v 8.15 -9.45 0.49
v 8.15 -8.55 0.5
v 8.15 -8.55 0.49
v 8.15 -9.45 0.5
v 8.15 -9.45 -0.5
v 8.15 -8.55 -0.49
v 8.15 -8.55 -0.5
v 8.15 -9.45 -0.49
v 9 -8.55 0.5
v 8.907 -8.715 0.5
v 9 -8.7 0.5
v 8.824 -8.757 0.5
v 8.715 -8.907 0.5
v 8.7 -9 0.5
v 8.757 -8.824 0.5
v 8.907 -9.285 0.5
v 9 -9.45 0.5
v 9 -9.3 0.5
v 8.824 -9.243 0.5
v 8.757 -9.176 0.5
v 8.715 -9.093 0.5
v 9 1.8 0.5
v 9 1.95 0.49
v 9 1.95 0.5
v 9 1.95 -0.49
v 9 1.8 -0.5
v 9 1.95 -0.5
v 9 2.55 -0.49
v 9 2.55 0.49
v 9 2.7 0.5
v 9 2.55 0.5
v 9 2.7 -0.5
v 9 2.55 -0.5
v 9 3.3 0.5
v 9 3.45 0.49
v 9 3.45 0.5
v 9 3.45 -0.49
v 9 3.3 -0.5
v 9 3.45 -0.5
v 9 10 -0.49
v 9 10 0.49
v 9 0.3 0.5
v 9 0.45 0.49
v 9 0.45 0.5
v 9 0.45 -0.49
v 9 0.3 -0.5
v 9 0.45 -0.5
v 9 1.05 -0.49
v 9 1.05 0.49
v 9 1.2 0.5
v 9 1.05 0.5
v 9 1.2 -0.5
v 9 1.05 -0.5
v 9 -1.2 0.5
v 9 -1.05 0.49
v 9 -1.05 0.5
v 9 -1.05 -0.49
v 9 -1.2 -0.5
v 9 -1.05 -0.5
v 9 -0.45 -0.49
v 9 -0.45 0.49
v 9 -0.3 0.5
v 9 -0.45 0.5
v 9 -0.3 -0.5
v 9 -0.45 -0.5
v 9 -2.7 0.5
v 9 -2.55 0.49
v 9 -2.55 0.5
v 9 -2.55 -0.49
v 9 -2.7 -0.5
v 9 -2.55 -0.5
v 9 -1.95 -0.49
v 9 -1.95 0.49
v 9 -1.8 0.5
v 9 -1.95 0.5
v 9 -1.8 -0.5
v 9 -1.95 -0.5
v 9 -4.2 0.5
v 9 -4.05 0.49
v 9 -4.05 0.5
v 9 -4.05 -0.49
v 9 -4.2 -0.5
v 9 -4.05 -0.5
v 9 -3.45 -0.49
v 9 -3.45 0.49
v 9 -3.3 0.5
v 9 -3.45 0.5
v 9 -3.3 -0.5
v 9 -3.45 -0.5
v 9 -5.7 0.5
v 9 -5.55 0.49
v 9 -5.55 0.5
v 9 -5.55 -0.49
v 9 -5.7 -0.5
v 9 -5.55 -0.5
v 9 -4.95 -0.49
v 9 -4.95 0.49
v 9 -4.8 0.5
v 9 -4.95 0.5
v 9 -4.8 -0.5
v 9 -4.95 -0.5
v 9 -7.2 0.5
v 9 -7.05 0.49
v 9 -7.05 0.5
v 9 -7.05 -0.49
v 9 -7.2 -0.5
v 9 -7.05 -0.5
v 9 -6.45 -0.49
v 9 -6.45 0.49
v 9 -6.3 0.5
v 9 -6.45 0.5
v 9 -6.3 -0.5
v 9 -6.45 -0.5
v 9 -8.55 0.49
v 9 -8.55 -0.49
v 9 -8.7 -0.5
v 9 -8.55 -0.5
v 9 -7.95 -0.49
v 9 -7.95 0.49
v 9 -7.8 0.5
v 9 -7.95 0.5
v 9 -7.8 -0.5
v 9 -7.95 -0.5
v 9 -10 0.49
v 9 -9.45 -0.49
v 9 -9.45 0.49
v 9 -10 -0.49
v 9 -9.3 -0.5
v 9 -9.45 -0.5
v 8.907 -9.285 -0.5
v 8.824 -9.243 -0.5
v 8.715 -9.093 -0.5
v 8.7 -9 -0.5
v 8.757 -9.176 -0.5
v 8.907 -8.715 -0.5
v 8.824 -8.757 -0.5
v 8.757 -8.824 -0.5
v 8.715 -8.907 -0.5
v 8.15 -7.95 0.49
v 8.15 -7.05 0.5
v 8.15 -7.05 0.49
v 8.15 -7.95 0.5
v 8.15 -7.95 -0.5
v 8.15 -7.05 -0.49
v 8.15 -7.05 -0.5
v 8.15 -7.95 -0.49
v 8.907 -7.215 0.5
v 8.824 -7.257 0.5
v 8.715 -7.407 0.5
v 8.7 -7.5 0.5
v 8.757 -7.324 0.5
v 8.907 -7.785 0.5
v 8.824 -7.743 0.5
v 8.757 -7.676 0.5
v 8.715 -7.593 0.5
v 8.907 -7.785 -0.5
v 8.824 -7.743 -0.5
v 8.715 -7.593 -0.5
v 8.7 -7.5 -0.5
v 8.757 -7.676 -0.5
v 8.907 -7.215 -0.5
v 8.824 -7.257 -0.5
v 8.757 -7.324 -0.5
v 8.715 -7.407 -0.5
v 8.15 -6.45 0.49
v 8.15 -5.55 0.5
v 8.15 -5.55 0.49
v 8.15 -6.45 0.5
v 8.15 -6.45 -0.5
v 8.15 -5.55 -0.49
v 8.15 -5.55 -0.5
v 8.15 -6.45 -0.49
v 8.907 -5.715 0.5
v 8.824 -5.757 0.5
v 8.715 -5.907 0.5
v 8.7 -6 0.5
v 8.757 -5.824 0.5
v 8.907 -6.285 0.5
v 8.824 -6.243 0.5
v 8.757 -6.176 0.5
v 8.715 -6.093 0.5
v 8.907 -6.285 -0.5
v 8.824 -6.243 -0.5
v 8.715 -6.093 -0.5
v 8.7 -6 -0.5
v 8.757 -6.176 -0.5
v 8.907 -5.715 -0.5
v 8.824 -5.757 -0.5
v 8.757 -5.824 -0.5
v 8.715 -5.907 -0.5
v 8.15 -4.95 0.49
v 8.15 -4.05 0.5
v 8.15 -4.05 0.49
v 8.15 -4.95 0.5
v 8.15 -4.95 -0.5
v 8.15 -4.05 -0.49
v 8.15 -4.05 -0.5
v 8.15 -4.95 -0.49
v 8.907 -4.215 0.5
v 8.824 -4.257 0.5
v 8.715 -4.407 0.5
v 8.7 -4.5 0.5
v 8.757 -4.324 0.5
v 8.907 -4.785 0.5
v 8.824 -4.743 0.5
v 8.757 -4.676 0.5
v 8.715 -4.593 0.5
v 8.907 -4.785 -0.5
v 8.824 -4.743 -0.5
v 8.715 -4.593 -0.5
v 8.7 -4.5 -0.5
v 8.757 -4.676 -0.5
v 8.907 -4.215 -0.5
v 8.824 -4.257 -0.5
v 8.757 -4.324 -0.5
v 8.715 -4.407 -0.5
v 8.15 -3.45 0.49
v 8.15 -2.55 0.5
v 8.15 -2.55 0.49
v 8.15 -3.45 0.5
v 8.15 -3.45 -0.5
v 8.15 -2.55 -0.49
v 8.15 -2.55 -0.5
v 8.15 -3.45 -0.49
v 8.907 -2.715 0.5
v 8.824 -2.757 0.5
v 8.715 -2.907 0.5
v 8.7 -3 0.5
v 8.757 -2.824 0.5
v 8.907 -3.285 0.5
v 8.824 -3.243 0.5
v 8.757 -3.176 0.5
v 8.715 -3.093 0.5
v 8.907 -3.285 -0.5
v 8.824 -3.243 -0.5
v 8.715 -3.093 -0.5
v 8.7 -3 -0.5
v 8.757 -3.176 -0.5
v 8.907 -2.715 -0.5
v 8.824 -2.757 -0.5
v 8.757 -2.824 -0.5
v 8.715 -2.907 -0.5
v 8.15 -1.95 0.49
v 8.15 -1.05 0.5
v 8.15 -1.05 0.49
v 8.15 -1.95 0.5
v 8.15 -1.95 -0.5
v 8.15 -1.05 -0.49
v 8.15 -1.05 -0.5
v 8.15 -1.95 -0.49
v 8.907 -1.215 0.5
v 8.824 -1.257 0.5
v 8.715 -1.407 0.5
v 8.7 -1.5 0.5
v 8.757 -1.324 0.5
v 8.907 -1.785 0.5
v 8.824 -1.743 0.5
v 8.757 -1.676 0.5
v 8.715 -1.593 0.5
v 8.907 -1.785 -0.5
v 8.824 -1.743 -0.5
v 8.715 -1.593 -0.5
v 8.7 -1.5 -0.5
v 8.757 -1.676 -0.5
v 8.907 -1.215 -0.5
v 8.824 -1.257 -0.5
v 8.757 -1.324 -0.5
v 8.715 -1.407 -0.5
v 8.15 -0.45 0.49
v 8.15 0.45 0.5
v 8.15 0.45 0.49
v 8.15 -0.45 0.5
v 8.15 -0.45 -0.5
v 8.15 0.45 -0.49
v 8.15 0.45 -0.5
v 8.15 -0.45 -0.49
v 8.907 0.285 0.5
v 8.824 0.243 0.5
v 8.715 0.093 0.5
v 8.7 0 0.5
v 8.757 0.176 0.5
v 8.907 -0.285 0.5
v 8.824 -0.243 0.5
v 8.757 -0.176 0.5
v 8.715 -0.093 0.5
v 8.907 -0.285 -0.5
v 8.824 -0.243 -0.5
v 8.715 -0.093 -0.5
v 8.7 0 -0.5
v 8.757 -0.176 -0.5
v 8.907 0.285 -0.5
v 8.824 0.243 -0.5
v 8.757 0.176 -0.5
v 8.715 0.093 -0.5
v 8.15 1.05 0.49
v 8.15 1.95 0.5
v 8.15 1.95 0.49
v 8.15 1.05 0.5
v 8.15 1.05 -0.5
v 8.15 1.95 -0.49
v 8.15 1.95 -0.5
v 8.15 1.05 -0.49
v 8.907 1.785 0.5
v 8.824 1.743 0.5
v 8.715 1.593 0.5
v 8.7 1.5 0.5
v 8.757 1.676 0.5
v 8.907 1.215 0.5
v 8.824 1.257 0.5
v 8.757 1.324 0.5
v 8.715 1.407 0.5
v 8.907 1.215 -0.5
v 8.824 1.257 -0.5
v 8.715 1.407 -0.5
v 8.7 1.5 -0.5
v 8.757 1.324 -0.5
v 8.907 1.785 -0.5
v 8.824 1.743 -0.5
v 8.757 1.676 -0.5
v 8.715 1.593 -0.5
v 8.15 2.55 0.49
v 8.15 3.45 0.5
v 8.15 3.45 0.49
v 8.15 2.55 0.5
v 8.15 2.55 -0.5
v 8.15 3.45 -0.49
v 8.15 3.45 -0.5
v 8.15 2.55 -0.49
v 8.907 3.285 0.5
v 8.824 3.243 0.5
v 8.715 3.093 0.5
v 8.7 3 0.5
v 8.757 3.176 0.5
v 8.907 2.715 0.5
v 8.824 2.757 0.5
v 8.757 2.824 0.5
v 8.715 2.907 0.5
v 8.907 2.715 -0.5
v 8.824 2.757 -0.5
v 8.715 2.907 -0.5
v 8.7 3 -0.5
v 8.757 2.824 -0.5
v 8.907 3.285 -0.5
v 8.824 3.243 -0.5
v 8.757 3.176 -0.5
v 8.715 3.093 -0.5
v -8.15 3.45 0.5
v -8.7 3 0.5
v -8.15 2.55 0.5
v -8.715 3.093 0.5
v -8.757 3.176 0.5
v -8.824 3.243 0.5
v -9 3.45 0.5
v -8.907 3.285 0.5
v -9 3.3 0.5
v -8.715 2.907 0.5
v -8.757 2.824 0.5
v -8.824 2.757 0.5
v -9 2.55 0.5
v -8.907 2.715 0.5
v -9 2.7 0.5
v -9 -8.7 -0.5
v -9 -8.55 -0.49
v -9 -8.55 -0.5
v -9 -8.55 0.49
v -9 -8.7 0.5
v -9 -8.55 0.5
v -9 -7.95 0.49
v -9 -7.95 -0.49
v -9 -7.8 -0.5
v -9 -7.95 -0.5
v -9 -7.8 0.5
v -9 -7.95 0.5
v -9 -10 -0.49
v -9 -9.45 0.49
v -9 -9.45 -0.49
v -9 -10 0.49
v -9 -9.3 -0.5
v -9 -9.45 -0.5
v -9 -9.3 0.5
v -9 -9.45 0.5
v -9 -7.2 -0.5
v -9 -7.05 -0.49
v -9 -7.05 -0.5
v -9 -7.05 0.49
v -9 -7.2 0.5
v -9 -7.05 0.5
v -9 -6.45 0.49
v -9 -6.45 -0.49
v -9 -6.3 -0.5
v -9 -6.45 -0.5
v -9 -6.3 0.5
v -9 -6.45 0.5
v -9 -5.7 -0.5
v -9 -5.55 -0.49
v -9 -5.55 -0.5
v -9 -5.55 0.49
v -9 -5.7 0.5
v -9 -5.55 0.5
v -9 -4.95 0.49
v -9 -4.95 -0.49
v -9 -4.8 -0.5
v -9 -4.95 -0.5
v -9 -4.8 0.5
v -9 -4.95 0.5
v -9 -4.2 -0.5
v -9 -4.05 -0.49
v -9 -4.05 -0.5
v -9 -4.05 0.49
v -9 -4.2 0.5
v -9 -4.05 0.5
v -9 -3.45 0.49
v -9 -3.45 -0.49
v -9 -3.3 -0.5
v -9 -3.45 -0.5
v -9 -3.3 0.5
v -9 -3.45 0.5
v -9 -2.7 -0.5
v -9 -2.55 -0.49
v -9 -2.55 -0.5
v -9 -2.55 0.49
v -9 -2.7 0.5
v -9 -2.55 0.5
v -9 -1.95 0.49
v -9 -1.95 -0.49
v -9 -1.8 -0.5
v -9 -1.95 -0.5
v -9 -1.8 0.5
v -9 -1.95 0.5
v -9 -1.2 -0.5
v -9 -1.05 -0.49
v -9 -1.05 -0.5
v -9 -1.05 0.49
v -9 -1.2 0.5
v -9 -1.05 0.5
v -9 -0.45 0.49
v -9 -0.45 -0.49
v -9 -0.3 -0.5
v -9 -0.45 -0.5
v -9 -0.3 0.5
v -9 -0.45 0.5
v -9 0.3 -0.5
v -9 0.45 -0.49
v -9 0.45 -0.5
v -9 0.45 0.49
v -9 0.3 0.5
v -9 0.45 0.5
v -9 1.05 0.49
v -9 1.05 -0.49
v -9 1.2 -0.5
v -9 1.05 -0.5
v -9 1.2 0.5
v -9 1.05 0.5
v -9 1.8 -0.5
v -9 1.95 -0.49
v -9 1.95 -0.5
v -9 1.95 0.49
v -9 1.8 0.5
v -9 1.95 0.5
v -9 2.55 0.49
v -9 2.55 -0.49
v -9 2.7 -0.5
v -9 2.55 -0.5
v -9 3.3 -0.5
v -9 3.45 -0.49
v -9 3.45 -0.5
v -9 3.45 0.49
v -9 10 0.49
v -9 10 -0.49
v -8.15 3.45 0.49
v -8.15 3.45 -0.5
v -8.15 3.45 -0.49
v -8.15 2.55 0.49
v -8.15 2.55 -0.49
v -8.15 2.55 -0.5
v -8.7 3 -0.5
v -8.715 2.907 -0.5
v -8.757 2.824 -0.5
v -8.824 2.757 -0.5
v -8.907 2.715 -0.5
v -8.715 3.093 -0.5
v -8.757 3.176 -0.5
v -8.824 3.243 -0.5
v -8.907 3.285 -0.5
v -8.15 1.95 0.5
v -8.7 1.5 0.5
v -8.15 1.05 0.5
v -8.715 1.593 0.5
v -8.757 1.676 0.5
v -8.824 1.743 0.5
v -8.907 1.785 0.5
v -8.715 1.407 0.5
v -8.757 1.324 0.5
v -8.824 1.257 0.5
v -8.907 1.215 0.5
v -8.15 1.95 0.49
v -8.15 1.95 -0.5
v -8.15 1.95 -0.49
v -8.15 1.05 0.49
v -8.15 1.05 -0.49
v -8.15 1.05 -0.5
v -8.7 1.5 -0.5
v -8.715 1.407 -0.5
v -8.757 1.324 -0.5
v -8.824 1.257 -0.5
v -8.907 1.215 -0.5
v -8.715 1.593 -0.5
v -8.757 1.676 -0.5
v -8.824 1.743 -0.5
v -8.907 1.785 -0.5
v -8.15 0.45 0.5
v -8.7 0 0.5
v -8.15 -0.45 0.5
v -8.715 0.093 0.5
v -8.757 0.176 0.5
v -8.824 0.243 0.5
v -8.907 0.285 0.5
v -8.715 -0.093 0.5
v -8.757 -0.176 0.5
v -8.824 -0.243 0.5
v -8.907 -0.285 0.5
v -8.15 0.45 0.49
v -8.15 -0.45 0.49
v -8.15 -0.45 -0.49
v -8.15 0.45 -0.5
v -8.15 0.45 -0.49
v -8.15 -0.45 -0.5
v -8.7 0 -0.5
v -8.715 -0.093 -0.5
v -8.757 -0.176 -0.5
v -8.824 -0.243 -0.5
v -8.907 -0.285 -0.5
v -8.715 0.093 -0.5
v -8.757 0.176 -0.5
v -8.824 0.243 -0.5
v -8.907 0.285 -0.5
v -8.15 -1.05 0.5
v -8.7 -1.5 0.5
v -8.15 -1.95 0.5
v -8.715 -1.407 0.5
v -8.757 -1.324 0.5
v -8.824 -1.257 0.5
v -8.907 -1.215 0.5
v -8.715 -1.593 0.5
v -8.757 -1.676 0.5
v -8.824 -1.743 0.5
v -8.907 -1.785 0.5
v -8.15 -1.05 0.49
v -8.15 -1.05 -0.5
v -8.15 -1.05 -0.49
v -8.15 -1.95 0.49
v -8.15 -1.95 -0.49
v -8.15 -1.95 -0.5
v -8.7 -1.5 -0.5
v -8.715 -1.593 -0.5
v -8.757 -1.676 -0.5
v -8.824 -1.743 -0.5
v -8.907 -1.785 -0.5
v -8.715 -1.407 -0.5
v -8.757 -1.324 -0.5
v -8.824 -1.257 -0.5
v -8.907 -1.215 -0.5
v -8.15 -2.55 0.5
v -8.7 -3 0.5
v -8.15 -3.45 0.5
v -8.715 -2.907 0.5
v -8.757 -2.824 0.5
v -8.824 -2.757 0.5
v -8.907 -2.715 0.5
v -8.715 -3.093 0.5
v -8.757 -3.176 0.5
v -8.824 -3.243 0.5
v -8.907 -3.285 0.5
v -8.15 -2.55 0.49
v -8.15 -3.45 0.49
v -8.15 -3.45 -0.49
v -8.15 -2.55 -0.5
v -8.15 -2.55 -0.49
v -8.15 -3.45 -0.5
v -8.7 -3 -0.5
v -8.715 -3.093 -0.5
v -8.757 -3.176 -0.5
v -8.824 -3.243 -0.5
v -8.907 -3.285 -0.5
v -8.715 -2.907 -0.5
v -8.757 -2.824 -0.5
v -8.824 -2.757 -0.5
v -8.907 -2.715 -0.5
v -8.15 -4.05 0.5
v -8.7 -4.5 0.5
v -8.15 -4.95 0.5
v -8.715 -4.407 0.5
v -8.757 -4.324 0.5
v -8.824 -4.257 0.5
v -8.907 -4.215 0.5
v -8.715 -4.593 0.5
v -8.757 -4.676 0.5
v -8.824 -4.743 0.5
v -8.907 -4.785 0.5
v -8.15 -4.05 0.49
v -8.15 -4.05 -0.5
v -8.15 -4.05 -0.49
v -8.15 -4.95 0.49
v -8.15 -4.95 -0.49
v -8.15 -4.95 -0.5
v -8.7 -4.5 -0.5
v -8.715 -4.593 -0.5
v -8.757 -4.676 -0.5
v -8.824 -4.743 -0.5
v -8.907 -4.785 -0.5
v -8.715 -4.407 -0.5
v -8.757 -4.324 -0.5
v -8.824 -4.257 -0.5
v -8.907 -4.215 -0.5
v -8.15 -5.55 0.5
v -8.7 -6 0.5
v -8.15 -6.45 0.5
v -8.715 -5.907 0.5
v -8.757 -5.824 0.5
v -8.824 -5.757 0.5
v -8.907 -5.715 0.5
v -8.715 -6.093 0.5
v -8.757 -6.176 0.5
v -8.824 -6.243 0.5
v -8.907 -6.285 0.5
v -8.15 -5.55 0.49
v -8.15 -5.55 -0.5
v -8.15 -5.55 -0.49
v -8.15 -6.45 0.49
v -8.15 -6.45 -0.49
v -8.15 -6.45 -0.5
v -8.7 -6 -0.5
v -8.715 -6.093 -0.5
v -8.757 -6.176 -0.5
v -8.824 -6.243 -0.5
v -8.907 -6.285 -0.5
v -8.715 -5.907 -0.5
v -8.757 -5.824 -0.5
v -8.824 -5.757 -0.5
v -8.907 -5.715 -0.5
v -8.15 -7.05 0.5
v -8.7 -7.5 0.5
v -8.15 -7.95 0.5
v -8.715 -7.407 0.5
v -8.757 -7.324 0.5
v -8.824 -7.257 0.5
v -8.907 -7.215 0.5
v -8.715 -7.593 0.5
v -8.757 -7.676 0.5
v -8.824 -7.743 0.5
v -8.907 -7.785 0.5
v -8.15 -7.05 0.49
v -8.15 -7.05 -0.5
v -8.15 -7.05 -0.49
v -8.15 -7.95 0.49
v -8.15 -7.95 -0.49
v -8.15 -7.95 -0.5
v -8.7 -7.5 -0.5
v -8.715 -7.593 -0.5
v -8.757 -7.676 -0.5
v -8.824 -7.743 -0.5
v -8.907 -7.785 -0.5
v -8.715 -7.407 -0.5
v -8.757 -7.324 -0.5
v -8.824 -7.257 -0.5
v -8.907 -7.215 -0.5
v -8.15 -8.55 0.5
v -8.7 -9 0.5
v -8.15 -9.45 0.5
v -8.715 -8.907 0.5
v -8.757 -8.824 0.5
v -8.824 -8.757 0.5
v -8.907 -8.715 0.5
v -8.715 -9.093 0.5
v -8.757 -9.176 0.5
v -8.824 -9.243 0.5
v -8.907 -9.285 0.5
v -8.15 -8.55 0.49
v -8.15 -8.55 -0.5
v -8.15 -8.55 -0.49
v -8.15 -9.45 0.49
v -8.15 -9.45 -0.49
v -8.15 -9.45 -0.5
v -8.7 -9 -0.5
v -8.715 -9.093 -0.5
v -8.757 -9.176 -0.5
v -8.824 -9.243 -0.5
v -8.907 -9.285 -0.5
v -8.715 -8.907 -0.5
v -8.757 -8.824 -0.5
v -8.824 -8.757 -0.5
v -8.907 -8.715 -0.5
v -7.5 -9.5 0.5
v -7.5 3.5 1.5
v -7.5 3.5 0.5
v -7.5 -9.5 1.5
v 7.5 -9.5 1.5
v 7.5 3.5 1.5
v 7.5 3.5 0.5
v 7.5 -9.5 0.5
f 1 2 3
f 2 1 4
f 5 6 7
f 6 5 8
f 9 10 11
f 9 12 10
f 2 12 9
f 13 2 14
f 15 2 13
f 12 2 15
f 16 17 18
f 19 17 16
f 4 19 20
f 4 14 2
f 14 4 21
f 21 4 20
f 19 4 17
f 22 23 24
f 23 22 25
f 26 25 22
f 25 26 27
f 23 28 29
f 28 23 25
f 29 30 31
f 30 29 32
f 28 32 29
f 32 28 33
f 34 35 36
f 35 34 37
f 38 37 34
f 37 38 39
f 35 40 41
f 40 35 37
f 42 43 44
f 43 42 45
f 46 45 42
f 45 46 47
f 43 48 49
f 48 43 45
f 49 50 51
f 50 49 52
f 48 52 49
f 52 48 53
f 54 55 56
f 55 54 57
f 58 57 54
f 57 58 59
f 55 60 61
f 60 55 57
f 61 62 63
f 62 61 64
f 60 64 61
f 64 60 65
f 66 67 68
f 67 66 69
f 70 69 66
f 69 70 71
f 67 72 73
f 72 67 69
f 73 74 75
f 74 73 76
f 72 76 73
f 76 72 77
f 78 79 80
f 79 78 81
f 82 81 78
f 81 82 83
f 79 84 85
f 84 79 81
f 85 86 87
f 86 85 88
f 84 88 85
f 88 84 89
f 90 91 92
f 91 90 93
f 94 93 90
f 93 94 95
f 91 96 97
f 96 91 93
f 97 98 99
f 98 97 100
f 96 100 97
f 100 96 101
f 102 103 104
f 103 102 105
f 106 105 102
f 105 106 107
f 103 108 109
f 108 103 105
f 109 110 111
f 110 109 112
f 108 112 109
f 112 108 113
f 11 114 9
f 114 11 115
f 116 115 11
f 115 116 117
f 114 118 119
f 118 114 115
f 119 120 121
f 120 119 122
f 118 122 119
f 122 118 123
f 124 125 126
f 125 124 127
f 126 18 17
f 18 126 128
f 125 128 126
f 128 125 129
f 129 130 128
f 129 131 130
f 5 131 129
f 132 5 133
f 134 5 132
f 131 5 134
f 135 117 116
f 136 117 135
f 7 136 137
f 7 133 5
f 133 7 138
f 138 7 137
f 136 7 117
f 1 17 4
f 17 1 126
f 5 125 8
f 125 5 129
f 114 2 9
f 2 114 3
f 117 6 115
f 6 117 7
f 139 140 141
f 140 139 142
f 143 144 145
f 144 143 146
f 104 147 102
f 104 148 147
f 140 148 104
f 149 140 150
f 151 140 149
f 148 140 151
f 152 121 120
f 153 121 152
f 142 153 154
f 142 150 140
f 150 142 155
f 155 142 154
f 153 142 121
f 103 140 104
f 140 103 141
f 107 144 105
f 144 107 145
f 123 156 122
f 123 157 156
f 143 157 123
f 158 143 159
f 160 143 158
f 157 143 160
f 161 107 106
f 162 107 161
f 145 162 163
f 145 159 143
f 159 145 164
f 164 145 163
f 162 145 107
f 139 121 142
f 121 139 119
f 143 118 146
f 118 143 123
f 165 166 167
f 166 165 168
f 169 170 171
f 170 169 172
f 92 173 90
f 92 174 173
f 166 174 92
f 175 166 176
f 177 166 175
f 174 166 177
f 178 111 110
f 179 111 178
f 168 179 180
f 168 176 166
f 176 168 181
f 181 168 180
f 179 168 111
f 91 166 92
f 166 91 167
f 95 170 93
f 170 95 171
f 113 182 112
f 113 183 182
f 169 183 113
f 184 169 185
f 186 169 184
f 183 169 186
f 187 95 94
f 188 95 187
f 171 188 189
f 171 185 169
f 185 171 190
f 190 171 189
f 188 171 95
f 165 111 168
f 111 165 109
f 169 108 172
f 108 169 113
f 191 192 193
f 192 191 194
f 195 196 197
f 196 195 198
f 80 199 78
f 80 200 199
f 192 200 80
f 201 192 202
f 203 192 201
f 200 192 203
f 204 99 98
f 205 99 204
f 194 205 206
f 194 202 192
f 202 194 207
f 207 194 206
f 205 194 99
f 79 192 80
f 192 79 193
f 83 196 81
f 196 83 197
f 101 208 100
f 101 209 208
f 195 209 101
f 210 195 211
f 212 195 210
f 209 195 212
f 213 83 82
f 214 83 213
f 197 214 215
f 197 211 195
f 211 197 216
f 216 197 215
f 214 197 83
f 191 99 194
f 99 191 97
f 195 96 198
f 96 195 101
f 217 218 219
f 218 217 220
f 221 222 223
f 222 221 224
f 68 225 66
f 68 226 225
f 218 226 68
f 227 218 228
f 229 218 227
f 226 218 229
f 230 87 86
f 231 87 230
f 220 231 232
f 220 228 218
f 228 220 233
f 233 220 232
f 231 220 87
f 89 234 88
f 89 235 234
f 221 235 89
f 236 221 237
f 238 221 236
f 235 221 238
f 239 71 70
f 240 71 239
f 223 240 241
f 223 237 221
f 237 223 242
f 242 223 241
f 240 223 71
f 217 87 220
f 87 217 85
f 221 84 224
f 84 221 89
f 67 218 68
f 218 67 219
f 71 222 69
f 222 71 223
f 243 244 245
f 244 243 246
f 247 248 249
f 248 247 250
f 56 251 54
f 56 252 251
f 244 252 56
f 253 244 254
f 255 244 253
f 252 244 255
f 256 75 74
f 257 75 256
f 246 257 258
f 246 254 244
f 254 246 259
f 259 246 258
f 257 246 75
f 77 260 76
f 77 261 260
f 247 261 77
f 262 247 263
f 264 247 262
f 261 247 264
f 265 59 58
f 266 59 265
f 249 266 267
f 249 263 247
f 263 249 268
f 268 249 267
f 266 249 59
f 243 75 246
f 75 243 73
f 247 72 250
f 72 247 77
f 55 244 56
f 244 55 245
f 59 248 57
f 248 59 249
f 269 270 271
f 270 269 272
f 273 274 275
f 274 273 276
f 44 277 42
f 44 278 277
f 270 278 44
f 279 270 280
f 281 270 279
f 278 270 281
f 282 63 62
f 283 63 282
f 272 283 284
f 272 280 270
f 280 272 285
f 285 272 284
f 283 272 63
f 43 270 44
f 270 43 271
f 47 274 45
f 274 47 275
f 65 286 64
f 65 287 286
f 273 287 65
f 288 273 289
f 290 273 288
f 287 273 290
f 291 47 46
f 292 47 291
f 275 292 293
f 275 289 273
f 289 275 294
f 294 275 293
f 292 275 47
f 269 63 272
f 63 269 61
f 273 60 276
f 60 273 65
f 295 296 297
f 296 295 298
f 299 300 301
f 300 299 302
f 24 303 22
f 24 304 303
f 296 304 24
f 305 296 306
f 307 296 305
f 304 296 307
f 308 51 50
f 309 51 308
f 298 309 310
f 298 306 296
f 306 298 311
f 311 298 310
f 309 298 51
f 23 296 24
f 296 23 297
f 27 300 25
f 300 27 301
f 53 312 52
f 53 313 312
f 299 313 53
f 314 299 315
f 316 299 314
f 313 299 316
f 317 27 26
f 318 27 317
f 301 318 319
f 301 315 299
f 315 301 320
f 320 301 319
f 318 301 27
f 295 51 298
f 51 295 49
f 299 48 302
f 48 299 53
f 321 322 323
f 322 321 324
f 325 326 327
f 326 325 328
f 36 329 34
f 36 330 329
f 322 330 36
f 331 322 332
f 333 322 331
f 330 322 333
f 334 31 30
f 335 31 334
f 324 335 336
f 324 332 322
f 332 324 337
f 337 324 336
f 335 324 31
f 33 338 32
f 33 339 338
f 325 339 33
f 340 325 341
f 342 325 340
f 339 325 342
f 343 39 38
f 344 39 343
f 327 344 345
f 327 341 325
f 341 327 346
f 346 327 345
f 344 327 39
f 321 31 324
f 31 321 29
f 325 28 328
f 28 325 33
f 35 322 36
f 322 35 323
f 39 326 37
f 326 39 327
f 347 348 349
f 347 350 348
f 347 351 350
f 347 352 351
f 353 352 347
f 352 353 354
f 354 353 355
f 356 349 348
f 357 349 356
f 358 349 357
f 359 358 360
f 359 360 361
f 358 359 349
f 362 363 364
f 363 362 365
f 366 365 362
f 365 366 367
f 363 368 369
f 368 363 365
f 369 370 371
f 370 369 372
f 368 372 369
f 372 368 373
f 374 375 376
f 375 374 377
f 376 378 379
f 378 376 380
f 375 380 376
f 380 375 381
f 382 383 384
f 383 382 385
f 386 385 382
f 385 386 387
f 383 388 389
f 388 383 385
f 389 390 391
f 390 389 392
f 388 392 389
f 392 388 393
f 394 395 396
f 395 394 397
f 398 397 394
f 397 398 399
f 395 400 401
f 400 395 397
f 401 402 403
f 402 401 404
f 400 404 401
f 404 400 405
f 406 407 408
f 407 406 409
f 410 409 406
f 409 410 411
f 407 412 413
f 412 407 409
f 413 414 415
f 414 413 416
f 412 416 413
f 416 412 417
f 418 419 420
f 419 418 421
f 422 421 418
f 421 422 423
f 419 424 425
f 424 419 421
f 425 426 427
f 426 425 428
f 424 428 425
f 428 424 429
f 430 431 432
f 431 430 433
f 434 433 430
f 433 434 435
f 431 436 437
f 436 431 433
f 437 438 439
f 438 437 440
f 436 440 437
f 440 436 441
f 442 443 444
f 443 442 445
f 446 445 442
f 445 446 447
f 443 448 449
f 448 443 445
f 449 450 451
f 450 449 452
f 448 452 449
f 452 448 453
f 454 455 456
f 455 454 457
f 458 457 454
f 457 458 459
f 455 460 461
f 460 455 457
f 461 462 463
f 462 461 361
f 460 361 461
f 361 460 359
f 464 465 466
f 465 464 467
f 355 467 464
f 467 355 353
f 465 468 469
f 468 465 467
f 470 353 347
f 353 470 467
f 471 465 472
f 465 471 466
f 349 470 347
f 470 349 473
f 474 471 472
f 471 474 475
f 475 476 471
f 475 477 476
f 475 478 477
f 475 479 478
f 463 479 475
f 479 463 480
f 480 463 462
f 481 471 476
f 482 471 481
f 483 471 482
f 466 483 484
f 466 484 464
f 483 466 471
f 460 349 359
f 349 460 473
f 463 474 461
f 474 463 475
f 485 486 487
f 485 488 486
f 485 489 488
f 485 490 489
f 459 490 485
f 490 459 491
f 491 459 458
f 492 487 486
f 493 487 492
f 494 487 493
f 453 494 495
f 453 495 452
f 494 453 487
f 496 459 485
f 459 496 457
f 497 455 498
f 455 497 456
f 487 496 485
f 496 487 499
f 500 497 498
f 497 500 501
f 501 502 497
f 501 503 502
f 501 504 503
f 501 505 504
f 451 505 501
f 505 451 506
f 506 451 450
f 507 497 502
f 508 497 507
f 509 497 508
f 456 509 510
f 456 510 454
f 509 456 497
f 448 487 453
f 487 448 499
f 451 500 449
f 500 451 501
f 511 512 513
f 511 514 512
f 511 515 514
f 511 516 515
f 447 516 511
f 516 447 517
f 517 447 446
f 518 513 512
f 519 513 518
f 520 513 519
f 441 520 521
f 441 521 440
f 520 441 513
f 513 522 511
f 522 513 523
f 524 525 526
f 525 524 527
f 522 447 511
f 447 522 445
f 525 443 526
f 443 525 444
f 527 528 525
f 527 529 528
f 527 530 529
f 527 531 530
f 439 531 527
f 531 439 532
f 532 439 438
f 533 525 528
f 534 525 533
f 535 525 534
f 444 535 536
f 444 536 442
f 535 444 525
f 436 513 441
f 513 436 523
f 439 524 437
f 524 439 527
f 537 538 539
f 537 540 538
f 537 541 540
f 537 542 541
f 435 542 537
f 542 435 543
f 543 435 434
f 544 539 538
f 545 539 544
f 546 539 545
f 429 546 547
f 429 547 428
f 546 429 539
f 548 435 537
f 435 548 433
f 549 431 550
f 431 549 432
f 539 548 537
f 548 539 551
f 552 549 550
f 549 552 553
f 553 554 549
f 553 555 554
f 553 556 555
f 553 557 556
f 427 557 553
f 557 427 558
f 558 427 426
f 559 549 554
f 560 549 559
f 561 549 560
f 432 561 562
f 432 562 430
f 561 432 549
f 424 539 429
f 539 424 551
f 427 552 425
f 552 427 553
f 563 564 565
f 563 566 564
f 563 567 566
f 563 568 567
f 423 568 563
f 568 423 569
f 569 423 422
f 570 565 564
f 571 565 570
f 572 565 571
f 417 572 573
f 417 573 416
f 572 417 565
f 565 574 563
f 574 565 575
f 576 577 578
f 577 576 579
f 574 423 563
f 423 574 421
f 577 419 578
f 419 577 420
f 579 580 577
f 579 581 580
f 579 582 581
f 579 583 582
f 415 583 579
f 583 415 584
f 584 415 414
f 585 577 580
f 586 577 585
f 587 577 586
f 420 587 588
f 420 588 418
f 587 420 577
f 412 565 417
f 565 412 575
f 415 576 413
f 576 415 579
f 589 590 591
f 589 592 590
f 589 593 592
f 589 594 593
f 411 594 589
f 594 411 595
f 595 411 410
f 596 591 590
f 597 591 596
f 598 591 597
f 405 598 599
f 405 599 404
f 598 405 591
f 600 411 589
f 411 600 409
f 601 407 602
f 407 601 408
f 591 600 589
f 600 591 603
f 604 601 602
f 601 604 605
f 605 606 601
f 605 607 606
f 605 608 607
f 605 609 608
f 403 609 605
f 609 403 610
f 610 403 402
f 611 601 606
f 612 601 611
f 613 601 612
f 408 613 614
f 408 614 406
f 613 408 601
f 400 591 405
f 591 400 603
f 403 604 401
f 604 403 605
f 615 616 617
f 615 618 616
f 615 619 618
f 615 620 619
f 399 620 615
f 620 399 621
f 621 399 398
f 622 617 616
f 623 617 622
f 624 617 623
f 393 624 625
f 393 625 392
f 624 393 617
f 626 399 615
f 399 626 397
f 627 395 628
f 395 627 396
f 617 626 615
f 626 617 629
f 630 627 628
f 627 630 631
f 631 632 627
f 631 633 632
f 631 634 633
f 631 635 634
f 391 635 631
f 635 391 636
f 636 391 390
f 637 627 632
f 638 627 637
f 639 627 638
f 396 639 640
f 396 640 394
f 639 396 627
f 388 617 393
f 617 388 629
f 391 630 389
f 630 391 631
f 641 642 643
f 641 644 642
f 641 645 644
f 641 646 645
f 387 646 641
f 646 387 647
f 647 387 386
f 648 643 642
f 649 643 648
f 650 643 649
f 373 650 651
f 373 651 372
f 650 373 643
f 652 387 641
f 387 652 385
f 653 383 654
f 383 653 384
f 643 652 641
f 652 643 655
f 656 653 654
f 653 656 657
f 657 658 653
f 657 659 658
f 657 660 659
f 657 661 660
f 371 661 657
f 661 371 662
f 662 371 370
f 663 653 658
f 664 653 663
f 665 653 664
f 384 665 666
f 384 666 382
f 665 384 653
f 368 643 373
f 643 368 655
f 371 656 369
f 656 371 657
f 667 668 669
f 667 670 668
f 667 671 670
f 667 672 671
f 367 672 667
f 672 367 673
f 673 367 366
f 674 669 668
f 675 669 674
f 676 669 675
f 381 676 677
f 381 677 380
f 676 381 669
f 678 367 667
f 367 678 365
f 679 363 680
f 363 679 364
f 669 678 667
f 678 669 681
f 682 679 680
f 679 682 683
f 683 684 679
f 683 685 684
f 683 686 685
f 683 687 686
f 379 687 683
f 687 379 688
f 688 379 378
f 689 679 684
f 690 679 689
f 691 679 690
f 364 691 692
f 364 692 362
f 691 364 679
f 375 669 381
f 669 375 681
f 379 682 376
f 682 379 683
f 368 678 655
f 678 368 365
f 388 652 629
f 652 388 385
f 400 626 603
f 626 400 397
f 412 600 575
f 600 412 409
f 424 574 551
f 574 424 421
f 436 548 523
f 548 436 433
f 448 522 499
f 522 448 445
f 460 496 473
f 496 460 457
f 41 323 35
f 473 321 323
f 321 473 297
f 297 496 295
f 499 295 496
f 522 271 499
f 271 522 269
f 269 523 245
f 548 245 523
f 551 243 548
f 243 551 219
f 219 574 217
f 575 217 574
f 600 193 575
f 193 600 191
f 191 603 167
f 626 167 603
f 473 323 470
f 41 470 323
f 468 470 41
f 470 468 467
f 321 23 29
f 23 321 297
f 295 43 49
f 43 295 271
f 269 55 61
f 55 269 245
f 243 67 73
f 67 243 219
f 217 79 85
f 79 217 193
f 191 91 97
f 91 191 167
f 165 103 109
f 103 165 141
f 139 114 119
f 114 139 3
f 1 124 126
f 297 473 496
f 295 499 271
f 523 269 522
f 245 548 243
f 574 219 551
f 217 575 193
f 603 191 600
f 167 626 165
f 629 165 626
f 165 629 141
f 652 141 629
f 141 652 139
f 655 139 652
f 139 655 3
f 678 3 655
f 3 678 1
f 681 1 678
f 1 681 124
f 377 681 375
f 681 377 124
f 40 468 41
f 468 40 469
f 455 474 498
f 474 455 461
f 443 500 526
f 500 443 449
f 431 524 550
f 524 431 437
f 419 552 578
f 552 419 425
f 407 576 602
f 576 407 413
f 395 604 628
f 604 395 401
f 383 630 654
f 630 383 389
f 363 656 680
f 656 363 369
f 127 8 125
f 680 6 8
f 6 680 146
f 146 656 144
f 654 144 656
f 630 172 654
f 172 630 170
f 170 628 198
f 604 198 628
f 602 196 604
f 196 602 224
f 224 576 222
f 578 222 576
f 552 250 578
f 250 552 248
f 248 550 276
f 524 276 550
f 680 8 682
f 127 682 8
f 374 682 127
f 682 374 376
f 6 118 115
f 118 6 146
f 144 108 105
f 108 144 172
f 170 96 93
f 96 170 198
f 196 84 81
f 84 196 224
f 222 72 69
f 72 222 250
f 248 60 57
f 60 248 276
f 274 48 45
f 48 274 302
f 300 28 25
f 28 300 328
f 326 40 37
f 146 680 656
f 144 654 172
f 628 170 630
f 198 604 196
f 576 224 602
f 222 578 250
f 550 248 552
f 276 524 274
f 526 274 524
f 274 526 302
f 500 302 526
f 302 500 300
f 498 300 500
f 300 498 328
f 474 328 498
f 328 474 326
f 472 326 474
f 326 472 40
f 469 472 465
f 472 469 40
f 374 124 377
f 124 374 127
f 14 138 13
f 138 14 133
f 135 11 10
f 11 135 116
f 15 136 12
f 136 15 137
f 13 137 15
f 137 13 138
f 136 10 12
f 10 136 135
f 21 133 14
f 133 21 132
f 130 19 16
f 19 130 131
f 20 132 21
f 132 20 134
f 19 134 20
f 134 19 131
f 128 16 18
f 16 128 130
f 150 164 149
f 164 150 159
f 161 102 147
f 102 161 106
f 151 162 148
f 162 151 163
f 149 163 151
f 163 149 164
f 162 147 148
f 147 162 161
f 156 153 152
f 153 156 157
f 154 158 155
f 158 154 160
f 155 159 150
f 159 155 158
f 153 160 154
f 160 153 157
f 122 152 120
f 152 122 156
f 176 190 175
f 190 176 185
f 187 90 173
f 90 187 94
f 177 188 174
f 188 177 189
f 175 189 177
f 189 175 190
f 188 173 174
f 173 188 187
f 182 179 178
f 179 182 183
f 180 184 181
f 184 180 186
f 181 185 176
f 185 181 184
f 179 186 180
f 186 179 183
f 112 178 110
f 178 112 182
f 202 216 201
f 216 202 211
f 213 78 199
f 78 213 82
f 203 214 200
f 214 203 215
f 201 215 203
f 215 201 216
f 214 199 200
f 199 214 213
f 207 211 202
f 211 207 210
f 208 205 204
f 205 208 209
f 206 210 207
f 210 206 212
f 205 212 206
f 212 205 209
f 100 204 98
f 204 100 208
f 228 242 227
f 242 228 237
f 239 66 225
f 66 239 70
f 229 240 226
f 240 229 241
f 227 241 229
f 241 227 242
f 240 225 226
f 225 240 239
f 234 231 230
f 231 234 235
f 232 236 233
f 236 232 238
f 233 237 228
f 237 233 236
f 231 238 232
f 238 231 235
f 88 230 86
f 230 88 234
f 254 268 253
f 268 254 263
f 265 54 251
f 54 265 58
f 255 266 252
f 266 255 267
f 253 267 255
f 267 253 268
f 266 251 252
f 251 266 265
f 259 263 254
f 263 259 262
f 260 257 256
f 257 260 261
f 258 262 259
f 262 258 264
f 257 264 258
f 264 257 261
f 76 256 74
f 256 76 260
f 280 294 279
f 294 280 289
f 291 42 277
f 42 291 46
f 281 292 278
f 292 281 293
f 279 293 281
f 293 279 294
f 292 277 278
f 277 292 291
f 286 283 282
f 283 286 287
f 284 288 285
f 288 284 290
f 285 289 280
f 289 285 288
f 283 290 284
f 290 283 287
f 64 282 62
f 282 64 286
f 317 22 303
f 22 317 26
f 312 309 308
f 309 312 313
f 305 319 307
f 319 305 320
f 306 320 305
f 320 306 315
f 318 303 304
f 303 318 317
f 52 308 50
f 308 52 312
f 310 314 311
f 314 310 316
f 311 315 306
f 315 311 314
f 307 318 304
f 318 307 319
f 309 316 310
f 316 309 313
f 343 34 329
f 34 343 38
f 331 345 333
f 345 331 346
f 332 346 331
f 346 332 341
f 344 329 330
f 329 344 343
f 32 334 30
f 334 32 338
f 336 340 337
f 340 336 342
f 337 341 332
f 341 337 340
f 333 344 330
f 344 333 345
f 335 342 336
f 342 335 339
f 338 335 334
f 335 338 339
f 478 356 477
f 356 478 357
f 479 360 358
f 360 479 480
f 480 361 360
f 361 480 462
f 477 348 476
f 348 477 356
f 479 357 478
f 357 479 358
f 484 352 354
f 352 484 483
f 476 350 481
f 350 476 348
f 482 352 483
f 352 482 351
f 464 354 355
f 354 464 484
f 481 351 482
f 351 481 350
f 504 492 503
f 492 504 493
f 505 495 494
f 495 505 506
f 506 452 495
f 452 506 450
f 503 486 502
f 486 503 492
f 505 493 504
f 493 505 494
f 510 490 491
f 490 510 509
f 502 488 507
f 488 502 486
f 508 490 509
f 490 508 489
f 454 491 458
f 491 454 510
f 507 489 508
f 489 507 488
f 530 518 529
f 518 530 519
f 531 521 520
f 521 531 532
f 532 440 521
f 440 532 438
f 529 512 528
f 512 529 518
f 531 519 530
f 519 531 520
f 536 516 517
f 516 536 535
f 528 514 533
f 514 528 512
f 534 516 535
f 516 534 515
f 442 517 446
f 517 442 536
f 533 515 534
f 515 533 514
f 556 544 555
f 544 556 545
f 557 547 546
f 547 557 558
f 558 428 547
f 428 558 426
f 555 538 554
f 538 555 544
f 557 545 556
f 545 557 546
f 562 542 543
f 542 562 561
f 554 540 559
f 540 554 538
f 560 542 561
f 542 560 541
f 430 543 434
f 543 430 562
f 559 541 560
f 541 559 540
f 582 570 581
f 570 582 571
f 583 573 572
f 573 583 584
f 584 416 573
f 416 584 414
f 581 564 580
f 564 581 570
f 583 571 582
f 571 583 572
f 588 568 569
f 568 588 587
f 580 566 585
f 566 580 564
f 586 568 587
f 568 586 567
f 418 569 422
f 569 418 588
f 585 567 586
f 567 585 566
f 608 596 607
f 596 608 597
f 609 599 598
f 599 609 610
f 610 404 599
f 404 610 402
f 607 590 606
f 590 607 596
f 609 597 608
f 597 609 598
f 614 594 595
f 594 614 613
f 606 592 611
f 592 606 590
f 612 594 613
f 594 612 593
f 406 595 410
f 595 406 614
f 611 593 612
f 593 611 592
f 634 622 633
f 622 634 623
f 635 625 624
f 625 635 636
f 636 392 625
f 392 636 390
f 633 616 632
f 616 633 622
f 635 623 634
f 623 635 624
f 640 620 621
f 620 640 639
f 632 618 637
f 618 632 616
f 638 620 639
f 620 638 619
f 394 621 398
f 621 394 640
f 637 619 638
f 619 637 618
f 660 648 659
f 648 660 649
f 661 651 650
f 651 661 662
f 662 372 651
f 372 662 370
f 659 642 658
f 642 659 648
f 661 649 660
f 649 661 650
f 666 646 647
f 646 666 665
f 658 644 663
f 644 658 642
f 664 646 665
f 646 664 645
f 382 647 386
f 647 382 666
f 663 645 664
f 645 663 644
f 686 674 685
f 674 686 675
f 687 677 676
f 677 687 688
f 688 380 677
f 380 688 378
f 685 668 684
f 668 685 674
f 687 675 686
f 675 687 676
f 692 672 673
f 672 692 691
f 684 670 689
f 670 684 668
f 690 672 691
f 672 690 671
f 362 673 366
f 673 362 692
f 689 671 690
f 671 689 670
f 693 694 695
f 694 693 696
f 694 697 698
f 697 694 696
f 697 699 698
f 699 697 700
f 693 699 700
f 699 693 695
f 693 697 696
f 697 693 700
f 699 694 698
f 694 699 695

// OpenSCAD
fragments=20;
module halfPad() {
    color("Gold", a=1) {
        difference() {
            cube(size=[0.85,0.90,1], center=true);
        };
    };
};

module padHoles(x, y, zRot = 0) {
    rotate([0, 0, zRot]) {
        translate([x, y, 0]) {
            cylinder(h=2,d=0.6,center=true,$fn=fragments);
        };
    };
};

module pad(x, y, zRot = 0) {
    rotate([0, 0, zRot]) {
        translate([x, y, 0]) {
            halfPad();
        };
    };
};

module pads() {
    pad(8.575,-9);
    pad(8.575,-7.5);
    pad(8.575,-6);
    pad(8.575,-4.5);
    pad(8.575,-3);
    pad(8.575,-1.5);
    pad(8.575,0);
    pad(8.575,1.5);
    pad(8.575,3);
    
    pad(8.575,-3,180);
    pad(8.575,-1.5,180);
    pad(8.575,0,180);
    pad(8.575,1.5,180);
    pad(8.575,3,180);
    pad(8.575,4.5,180);
    pad(8.575,6,180);
    pad(8.575,7.5,180);
    pad(8.575,9,180);
};

module holes() {
    
    padHoles(9,-9);
    padHoles(9,-7.5);
    padHoles(9,-6);
    padHoles(9,-4.5);
    padHoles(9,-3);
    padHoles(9,-1.5);
    padHoles(9,0);
    padHoles(9,1.5);
    padHoles(9,3);
    
    padHoles(9,-3,180);
    padHoles(9,-1.5,180);
    padHoles(9,0,180);
    padHoles(9,1.5,180);
    padHoles(9,3,180);
    padHoles(9,4.5,180);
    padHoles(9,6,180);
    padHoles(9,7.5,180);
    padHoles(9,9,180);
};

// Translate so that pin 1 and the bottom of the board
// is the reference point (0,0,0)
translate([0,0,0]) {
    // pcb
    difference() {
        union() {
            color("Blue", a=1) {
                translate([0, 0, 0]) {
                    cube(size=[18, 20, .98], center = true);
                };
            };
            pads();
        };
        holes();
    };

    //shield
    translate([0, -3, 1]) {
        color("Silver", a=1) {
            cube(size=[15, 13, 1], center = true);
        };
    };
};
